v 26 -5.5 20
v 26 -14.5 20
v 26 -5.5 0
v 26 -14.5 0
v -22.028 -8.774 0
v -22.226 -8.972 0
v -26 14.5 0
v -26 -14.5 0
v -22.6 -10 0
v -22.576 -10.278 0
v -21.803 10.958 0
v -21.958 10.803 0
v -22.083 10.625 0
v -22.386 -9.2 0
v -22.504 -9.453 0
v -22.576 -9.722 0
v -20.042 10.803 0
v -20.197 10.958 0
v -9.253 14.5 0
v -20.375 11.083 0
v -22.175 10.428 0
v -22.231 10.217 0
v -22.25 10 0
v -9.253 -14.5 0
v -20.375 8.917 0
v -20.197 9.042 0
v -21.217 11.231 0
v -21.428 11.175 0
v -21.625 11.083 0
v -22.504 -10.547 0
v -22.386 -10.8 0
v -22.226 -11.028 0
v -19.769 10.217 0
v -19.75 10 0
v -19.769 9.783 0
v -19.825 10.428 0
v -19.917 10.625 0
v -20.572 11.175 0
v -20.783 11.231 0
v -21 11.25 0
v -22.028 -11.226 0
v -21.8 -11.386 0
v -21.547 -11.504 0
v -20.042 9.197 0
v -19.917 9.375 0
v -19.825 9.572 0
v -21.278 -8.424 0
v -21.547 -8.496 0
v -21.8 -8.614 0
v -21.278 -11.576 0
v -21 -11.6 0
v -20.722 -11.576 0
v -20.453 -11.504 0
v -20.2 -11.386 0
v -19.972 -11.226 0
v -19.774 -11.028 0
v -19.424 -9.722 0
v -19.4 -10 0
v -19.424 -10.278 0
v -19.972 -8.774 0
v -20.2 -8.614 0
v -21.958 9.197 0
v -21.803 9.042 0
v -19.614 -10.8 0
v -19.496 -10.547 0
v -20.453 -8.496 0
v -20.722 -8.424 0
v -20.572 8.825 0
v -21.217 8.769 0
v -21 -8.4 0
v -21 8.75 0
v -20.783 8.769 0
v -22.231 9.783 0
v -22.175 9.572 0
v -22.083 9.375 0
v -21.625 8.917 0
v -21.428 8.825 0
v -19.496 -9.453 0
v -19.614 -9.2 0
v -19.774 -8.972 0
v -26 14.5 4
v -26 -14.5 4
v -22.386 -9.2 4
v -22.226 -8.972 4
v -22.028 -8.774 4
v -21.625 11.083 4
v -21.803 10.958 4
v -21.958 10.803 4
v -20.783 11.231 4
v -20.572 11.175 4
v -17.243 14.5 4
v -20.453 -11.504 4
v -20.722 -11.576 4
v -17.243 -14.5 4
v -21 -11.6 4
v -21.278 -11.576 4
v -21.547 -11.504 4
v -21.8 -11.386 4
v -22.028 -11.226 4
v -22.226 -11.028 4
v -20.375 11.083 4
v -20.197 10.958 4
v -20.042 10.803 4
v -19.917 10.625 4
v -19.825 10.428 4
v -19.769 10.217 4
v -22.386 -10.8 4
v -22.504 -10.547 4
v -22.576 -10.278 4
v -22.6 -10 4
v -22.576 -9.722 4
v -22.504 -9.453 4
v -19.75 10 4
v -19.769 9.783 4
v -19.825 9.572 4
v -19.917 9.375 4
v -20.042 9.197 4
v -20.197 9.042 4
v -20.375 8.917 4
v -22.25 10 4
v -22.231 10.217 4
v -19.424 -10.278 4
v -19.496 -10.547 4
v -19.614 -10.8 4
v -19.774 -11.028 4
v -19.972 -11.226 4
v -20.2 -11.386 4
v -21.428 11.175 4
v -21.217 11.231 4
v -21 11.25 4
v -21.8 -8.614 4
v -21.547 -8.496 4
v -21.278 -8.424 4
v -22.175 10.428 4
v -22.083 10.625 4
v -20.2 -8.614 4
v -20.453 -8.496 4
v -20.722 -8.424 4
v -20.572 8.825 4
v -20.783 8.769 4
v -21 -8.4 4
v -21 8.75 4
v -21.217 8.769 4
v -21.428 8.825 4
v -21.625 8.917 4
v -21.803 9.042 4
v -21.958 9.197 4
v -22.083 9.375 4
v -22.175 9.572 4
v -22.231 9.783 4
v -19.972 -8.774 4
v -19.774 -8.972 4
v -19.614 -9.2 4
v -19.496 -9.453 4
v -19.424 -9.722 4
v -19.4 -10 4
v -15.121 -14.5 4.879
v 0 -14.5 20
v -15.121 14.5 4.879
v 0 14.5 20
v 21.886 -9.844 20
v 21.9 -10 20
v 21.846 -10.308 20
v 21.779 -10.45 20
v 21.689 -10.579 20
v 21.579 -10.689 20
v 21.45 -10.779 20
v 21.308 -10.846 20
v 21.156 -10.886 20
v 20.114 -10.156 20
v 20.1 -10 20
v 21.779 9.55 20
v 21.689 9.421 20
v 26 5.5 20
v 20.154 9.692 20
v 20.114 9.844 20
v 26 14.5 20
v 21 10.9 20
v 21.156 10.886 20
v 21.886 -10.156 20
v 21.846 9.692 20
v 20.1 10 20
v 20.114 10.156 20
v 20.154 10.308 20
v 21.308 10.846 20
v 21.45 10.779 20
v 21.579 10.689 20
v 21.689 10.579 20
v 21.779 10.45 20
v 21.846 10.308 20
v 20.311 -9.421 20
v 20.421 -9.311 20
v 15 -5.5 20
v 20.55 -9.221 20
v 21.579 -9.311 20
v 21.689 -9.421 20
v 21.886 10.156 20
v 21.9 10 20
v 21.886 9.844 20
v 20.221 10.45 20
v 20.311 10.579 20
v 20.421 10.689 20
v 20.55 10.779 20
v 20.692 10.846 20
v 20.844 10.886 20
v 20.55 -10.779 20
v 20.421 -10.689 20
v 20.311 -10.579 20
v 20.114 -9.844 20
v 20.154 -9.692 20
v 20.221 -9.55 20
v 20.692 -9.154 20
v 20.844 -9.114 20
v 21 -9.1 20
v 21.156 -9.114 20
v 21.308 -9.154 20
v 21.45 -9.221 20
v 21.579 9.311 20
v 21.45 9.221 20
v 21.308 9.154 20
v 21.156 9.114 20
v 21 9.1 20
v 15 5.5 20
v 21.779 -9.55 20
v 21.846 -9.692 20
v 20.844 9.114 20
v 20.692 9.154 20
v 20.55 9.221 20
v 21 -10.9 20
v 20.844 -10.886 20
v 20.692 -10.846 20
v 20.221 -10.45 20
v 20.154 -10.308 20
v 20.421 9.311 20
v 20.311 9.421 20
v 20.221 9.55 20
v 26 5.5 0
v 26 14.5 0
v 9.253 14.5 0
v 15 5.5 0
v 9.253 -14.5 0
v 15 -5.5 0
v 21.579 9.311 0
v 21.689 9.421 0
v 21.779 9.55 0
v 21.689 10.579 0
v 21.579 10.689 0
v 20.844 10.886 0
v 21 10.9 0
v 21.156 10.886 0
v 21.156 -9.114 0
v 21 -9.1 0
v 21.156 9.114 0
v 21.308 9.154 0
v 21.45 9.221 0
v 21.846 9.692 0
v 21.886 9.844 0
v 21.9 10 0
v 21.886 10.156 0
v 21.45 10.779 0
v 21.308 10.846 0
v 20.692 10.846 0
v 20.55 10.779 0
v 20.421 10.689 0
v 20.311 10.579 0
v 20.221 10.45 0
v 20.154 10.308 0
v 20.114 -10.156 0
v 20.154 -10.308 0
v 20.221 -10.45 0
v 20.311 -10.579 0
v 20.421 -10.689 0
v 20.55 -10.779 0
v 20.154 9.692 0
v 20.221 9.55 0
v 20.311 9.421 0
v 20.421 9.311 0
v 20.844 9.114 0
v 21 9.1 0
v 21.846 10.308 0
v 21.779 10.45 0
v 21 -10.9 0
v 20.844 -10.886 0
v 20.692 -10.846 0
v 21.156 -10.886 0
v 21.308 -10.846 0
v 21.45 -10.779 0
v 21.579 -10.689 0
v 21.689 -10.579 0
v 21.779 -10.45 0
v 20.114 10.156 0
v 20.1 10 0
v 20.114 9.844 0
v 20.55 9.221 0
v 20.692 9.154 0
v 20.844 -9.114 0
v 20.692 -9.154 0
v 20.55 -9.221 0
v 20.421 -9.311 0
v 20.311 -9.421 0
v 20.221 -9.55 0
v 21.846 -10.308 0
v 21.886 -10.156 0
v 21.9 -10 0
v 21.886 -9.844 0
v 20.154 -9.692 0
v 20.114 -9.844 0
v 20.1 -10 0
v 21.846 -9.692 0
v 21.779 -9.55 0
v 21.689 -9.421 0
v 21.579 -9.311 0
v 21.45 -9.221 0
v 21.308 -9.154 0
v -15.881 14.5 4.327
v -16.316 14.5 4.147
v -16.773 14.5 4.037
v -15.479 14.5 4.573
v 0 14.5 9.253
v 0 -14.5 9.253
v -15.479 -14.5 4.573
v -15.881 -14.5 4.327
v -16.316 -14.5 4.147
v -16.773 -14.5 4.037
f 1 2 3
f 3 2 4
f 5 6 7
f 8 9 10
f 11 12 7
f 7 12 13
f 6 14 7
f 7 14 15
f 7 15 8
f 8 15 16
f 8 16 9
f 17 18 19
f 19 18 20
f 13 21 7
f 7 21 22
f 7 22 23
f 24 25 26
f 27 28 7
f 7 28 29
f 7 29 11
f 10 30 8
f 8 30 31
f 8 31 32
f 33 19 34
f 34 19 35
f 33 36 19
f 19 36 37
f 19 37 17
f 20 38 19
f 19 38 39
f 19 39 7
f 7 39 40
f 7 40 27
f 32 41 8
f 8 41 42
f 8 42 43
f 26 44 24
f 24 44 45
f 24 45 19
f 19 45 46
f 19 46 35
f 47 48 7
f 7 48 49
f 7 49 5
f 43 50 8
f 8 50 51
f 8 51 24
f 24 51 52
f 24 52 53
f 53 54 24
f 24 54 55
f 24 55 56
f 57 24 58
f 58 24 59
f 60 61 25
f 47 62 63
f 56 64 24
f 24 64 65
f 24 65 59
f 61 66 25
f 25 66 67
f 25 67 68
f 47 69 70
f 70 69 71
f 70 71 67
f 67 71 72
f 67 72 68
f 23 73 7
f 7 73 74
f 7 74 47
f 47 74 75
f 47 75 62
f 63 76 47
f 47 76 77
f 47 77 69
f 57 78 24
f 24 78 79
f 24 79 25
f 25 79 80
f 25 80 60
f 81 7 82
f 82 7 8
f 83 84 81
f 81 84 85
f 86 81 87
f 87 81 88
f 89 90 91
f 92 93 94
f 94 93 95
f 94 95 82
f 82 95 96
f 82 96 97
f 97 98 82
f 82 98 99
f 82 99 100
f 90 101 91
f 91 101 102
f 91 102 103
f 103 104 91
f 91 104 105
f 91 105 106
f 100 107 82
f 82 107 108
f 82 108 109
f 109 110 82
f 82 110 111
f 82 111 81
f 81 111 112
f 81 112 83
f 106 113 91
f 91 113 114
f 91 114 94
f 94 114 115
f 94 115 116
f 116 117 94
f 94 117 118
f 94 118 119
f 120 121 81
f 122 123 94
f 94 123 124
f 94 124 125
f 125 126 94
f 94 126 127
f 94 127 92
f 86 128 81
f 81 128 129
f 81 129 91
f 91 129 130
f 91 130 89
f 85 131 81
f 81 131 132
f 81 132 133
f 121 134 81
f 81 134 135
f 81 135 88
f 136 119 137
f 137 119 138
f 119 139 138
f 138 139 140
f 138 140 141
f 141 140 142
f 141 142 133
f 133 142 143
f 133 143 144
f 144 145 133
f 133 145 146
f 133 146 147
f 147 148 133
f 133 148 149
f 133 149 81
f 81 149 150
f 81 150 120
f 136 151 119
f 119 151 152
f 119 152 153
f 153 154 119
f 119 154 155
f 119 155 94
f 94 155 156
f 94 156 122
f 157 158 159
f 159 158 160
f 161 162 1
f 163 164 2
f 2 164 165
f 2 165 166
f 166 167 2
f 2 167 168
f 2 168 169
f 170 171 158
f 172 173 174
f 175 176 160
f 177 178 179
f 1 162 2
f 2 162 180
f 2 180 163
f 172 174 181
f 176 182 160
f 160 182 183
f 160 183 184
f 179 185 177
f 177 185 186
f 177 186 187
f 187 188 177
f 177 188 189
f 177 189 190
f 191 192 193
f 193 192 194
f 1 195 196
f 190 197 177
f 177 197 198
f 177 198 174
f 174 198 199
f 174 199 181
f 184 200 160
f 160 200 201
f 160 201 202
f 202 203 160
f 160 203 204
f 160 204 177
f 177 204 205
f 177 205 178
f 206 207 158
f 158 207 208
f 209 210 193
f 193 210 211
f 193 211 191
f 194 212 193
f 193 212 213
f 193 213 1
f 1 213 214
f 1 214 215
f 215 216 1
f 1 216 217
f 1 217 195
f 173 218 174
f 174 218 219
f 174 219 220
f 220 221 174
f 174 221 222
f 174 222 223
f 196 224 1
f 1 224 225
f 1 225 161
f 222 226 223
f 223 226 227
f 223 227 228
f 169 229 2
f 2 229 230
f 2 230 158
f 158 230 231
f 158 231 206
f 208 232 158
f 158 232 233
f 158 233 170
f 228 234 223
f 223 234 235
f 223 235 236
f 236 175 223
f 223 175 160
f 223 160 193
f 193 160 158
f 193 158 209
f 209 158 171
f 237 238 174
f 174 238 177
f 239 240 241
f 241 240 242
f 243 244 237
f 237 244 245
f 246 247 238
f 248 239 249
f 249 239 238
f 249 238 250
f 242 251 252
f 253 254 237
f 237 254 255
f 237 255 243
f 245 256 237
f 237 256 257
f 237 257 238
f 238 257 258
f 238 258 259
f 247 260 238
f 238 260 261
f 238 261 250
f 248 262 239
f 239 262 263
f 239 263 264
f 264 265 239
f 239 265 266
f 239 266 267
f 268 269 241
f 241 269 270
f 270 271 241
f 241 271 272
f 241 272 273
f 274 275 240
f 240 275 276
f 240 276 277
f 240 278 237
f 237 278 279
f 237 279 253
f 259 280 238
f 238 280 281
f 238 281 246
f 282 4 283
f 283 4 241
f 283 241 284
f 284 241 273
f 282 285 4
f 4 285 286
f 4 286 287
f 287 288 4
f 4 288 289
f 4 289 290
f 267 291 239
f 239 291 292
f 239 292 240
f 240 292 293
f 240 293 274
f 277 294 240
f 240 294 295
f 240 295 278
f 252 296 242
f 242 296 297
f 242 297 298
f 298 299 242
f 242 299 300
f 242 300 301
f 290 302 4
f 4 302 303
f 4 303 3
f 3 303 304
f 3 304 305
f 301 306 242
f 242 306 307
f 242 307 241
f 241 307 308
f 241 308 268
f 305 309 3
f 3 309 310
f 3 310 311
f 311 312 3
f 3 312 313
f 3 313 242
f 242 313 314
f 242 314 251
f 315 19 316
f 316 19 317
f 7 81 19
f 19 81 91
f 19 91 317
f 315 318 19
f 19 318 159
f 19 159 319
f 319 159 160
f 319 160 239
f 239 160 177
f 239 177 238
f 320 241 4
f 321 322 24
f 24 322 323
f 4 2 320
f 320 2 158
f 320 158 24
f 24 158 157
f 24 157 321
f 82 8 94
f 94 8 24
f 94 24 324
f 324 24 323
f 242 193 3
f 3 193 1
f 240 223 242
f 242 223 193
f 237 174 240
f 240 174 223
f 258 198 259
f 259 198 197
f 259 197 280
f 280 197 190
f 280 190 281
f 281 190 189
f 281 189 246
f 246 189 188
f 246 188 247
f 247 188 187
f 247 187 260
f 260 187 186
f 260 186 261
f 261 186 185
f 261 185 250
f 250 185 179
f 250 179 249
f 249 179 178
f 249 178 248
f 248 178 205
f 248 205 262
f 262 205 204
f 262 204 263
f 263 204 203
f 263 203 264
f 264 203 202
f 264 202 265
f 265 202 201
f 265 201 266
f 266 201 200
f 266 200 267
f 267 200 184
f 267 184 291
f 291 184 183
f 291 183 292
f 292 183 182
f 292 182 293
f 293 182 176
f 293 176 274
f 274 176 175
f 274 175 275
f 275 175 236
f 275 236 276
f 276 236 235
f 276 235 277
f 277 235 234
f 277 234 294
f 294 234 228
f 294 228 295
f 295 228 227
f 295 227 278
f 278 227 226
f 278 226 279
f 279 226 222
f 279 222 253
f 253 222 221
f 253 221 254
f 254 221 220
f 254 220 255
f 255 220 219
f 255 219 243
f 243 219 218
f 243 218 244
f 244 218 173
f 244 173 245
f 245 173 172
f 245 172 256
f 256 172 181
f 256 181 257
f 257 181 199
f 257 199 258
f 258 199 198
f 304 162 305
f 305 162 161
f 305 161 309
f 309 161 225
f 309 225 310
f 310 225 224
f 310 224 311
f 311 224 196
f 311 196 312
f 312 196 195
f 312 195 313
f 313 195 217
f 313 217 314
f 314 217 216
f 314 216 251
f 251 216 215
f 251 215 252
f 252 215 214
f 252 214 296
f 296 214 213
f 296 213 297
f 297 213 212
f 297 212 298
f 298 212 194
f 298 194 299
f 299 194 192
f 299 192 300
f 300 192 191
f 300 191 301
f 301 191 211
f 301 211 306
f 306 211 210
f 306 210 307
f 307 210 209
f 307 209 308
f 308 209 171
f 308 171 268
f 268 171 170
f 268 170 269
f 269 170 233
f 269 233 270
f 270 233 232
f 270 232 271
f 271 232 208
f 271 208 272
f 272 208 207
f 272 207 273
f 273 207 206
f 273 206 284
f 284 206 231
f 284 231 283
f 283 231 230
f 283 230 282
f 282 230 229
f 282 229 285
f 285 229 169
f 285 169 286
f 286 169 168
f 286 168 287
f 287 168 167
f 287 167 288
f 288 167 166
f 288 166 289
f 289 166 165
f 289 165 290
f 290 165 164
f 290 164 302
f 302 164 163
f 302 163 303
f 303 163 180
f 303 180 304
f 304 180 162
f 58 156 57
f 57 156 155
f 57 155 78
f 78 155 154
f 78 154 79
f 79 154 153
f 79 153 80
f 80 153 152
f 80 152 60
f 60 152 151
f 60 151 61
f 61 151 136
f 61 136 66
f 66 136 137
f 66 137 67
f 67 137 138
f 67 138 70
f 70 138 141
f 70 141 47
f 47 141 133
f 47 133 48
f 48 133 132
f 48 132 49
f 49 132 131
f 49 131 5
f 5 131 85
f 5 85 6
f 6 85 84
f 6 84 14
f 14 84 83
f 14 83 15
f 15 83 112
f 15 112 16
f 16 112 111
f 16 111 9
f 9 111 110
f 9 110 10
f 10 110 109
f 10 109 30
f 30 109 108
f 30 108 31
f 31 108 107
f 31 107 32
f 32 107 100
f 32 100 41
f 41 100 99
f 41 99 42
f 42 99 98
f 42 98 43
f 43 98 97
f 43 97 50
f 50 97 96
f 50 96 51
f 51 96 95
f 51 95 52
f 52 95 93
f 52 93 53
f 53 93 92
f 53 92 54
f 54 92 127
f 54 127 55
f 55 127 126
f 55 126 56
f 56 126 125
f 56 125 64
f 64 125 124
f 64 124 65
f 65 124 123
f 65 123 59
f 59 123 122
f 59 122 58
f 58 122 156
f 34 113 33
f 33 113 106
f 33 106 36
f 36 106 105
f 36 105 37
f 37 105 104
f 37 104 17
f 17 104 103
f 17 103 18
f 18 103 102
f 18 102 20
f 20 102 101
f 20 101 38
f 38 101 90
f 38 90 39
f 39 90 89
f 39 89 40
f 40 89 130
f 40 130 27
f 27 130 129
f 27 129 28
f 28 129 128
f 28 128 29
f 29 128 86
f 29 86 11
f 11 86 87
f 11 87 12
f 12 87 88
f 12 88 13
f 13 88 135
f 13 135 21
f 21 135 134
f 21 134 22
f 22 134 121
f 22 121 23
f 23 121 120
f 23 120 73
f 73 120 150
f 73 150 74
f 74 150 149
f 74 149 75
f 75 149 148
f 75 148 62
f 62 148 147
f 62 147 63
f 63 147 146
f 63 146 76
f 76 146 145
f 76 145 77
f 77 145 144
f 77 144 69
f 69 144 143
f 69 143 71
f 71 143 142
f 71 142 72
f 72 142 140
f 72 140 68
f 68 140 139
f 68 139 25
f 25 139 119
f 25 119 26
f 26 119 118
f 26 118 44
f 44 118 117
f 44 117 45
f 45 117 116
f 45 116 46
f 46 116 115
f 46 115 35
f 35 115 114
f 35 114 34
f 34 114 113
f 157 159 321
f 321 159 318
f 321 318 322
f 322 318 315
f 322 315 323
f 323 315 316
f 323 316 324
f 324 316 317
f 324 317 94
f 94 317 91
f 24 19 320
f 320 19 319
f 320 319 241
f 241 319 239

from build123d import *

# Parameters (mm, degrees)
BOSS_EXTRUDE1_DEPTH     = 14.5
CUT_EXTRUDE2_DEPTH      = 36.864327681
CUT_EXTRUDE2_DEPTH_BACK = 36.864327681
SKETCH4_R               = 0.9
SKETCH4_W               = 11
SKETCH4_H               = 11
SKETCH5_R               = 1.25
SKETCH5_R_2             = 1.6
CUT_EXTRUDE3_DEPTH      = 34.797189232
FILLET1_R               = 3
CUT_EXTRUDE5_DEPTH      = 36.864327681
CUT_EXTRUDE5_DEPTH_BACK = 36.864327681


with BuildPart() as part:
    # Sketch1 → Boss-Extrude1 (new, symmetric)
    with BuildSketch(Plane(origin=(0, 0, 0), x_dir=(1, 0, 0), z_dir=(0, 1, 0))):
        Polygon((-7.131727984, 0), (-26, 0), (-26, -4), (-16, -4), (0, -20), (26, -20), (26, 0), (7.131727984, 0), (0, -7.131727984), align=None)
    extrude(amount=BOSS_EXTRUDE1_DEPTH, both=True)

    # Sketch4 → Cut-Extrude2 (cut, two sides: drawn at the far end of the back side and taken through both)
    with BuildSketch(Plane.XY.offset(20).offset(-CUT_EXTRUDE2_DEPTH_BACK)):
        with Locations((21, 10)):
            Circle(SKETCH4_R)
        with Locations((21, -10)):
            Circle(SKETCH4_R)
        with Locations((20.5, 0)):
            Rectangle(SKETCH4_W, SKETCH4_H)
    extrude(amount=CUT_EXTRUDE2_DEPTH + CUT_EXTRUDE2_DEPTH_BACK, mode=Mode.SUBTRACT)

    # Sketch5 → Cut-Extrude3 (cut, through all)
    with BuildSketch(Plane.XY.offset(4)):
        with Locations((-21, 10)):
            Circle(SKETCH5_R)
        with Locations((-21, -10)):
            Circle(SKETCH5_R_2)
    extrude(amount=-CUT_EXTRUDE3_DEPTH, mode=Mode.SUBTRACT)

    # Fillet1
    fillet1_edges = [part.edges().sort_by_distance(p)[0] for p in [
        (-16, 0, 4),
    ]]
    fillet(fillet1_edges, radius=FILLET1_R)

    # Sketch8 → Cut-Extrude5 (cut, two sides: drawn at the far end of the back side and taken through both)
    with BuildSketch(Plane(origin=(0, 0, 0), x_dir=(1, 0, 0), z_dir=(0, 1, 0)).offset(-CUT_EXTRUDE5_DEPTH_BACK)):
        Polygon((9.253048327, 0), (-9.253048327, 0), (0, -9.253048327), align=None)
    extrude(amount=CUT_EXTRUDE5_DEPTH + CUT_EXTRUDE5_DEPTH_BACK, mode=Mode.SUBTRACT)


solid = part.part
